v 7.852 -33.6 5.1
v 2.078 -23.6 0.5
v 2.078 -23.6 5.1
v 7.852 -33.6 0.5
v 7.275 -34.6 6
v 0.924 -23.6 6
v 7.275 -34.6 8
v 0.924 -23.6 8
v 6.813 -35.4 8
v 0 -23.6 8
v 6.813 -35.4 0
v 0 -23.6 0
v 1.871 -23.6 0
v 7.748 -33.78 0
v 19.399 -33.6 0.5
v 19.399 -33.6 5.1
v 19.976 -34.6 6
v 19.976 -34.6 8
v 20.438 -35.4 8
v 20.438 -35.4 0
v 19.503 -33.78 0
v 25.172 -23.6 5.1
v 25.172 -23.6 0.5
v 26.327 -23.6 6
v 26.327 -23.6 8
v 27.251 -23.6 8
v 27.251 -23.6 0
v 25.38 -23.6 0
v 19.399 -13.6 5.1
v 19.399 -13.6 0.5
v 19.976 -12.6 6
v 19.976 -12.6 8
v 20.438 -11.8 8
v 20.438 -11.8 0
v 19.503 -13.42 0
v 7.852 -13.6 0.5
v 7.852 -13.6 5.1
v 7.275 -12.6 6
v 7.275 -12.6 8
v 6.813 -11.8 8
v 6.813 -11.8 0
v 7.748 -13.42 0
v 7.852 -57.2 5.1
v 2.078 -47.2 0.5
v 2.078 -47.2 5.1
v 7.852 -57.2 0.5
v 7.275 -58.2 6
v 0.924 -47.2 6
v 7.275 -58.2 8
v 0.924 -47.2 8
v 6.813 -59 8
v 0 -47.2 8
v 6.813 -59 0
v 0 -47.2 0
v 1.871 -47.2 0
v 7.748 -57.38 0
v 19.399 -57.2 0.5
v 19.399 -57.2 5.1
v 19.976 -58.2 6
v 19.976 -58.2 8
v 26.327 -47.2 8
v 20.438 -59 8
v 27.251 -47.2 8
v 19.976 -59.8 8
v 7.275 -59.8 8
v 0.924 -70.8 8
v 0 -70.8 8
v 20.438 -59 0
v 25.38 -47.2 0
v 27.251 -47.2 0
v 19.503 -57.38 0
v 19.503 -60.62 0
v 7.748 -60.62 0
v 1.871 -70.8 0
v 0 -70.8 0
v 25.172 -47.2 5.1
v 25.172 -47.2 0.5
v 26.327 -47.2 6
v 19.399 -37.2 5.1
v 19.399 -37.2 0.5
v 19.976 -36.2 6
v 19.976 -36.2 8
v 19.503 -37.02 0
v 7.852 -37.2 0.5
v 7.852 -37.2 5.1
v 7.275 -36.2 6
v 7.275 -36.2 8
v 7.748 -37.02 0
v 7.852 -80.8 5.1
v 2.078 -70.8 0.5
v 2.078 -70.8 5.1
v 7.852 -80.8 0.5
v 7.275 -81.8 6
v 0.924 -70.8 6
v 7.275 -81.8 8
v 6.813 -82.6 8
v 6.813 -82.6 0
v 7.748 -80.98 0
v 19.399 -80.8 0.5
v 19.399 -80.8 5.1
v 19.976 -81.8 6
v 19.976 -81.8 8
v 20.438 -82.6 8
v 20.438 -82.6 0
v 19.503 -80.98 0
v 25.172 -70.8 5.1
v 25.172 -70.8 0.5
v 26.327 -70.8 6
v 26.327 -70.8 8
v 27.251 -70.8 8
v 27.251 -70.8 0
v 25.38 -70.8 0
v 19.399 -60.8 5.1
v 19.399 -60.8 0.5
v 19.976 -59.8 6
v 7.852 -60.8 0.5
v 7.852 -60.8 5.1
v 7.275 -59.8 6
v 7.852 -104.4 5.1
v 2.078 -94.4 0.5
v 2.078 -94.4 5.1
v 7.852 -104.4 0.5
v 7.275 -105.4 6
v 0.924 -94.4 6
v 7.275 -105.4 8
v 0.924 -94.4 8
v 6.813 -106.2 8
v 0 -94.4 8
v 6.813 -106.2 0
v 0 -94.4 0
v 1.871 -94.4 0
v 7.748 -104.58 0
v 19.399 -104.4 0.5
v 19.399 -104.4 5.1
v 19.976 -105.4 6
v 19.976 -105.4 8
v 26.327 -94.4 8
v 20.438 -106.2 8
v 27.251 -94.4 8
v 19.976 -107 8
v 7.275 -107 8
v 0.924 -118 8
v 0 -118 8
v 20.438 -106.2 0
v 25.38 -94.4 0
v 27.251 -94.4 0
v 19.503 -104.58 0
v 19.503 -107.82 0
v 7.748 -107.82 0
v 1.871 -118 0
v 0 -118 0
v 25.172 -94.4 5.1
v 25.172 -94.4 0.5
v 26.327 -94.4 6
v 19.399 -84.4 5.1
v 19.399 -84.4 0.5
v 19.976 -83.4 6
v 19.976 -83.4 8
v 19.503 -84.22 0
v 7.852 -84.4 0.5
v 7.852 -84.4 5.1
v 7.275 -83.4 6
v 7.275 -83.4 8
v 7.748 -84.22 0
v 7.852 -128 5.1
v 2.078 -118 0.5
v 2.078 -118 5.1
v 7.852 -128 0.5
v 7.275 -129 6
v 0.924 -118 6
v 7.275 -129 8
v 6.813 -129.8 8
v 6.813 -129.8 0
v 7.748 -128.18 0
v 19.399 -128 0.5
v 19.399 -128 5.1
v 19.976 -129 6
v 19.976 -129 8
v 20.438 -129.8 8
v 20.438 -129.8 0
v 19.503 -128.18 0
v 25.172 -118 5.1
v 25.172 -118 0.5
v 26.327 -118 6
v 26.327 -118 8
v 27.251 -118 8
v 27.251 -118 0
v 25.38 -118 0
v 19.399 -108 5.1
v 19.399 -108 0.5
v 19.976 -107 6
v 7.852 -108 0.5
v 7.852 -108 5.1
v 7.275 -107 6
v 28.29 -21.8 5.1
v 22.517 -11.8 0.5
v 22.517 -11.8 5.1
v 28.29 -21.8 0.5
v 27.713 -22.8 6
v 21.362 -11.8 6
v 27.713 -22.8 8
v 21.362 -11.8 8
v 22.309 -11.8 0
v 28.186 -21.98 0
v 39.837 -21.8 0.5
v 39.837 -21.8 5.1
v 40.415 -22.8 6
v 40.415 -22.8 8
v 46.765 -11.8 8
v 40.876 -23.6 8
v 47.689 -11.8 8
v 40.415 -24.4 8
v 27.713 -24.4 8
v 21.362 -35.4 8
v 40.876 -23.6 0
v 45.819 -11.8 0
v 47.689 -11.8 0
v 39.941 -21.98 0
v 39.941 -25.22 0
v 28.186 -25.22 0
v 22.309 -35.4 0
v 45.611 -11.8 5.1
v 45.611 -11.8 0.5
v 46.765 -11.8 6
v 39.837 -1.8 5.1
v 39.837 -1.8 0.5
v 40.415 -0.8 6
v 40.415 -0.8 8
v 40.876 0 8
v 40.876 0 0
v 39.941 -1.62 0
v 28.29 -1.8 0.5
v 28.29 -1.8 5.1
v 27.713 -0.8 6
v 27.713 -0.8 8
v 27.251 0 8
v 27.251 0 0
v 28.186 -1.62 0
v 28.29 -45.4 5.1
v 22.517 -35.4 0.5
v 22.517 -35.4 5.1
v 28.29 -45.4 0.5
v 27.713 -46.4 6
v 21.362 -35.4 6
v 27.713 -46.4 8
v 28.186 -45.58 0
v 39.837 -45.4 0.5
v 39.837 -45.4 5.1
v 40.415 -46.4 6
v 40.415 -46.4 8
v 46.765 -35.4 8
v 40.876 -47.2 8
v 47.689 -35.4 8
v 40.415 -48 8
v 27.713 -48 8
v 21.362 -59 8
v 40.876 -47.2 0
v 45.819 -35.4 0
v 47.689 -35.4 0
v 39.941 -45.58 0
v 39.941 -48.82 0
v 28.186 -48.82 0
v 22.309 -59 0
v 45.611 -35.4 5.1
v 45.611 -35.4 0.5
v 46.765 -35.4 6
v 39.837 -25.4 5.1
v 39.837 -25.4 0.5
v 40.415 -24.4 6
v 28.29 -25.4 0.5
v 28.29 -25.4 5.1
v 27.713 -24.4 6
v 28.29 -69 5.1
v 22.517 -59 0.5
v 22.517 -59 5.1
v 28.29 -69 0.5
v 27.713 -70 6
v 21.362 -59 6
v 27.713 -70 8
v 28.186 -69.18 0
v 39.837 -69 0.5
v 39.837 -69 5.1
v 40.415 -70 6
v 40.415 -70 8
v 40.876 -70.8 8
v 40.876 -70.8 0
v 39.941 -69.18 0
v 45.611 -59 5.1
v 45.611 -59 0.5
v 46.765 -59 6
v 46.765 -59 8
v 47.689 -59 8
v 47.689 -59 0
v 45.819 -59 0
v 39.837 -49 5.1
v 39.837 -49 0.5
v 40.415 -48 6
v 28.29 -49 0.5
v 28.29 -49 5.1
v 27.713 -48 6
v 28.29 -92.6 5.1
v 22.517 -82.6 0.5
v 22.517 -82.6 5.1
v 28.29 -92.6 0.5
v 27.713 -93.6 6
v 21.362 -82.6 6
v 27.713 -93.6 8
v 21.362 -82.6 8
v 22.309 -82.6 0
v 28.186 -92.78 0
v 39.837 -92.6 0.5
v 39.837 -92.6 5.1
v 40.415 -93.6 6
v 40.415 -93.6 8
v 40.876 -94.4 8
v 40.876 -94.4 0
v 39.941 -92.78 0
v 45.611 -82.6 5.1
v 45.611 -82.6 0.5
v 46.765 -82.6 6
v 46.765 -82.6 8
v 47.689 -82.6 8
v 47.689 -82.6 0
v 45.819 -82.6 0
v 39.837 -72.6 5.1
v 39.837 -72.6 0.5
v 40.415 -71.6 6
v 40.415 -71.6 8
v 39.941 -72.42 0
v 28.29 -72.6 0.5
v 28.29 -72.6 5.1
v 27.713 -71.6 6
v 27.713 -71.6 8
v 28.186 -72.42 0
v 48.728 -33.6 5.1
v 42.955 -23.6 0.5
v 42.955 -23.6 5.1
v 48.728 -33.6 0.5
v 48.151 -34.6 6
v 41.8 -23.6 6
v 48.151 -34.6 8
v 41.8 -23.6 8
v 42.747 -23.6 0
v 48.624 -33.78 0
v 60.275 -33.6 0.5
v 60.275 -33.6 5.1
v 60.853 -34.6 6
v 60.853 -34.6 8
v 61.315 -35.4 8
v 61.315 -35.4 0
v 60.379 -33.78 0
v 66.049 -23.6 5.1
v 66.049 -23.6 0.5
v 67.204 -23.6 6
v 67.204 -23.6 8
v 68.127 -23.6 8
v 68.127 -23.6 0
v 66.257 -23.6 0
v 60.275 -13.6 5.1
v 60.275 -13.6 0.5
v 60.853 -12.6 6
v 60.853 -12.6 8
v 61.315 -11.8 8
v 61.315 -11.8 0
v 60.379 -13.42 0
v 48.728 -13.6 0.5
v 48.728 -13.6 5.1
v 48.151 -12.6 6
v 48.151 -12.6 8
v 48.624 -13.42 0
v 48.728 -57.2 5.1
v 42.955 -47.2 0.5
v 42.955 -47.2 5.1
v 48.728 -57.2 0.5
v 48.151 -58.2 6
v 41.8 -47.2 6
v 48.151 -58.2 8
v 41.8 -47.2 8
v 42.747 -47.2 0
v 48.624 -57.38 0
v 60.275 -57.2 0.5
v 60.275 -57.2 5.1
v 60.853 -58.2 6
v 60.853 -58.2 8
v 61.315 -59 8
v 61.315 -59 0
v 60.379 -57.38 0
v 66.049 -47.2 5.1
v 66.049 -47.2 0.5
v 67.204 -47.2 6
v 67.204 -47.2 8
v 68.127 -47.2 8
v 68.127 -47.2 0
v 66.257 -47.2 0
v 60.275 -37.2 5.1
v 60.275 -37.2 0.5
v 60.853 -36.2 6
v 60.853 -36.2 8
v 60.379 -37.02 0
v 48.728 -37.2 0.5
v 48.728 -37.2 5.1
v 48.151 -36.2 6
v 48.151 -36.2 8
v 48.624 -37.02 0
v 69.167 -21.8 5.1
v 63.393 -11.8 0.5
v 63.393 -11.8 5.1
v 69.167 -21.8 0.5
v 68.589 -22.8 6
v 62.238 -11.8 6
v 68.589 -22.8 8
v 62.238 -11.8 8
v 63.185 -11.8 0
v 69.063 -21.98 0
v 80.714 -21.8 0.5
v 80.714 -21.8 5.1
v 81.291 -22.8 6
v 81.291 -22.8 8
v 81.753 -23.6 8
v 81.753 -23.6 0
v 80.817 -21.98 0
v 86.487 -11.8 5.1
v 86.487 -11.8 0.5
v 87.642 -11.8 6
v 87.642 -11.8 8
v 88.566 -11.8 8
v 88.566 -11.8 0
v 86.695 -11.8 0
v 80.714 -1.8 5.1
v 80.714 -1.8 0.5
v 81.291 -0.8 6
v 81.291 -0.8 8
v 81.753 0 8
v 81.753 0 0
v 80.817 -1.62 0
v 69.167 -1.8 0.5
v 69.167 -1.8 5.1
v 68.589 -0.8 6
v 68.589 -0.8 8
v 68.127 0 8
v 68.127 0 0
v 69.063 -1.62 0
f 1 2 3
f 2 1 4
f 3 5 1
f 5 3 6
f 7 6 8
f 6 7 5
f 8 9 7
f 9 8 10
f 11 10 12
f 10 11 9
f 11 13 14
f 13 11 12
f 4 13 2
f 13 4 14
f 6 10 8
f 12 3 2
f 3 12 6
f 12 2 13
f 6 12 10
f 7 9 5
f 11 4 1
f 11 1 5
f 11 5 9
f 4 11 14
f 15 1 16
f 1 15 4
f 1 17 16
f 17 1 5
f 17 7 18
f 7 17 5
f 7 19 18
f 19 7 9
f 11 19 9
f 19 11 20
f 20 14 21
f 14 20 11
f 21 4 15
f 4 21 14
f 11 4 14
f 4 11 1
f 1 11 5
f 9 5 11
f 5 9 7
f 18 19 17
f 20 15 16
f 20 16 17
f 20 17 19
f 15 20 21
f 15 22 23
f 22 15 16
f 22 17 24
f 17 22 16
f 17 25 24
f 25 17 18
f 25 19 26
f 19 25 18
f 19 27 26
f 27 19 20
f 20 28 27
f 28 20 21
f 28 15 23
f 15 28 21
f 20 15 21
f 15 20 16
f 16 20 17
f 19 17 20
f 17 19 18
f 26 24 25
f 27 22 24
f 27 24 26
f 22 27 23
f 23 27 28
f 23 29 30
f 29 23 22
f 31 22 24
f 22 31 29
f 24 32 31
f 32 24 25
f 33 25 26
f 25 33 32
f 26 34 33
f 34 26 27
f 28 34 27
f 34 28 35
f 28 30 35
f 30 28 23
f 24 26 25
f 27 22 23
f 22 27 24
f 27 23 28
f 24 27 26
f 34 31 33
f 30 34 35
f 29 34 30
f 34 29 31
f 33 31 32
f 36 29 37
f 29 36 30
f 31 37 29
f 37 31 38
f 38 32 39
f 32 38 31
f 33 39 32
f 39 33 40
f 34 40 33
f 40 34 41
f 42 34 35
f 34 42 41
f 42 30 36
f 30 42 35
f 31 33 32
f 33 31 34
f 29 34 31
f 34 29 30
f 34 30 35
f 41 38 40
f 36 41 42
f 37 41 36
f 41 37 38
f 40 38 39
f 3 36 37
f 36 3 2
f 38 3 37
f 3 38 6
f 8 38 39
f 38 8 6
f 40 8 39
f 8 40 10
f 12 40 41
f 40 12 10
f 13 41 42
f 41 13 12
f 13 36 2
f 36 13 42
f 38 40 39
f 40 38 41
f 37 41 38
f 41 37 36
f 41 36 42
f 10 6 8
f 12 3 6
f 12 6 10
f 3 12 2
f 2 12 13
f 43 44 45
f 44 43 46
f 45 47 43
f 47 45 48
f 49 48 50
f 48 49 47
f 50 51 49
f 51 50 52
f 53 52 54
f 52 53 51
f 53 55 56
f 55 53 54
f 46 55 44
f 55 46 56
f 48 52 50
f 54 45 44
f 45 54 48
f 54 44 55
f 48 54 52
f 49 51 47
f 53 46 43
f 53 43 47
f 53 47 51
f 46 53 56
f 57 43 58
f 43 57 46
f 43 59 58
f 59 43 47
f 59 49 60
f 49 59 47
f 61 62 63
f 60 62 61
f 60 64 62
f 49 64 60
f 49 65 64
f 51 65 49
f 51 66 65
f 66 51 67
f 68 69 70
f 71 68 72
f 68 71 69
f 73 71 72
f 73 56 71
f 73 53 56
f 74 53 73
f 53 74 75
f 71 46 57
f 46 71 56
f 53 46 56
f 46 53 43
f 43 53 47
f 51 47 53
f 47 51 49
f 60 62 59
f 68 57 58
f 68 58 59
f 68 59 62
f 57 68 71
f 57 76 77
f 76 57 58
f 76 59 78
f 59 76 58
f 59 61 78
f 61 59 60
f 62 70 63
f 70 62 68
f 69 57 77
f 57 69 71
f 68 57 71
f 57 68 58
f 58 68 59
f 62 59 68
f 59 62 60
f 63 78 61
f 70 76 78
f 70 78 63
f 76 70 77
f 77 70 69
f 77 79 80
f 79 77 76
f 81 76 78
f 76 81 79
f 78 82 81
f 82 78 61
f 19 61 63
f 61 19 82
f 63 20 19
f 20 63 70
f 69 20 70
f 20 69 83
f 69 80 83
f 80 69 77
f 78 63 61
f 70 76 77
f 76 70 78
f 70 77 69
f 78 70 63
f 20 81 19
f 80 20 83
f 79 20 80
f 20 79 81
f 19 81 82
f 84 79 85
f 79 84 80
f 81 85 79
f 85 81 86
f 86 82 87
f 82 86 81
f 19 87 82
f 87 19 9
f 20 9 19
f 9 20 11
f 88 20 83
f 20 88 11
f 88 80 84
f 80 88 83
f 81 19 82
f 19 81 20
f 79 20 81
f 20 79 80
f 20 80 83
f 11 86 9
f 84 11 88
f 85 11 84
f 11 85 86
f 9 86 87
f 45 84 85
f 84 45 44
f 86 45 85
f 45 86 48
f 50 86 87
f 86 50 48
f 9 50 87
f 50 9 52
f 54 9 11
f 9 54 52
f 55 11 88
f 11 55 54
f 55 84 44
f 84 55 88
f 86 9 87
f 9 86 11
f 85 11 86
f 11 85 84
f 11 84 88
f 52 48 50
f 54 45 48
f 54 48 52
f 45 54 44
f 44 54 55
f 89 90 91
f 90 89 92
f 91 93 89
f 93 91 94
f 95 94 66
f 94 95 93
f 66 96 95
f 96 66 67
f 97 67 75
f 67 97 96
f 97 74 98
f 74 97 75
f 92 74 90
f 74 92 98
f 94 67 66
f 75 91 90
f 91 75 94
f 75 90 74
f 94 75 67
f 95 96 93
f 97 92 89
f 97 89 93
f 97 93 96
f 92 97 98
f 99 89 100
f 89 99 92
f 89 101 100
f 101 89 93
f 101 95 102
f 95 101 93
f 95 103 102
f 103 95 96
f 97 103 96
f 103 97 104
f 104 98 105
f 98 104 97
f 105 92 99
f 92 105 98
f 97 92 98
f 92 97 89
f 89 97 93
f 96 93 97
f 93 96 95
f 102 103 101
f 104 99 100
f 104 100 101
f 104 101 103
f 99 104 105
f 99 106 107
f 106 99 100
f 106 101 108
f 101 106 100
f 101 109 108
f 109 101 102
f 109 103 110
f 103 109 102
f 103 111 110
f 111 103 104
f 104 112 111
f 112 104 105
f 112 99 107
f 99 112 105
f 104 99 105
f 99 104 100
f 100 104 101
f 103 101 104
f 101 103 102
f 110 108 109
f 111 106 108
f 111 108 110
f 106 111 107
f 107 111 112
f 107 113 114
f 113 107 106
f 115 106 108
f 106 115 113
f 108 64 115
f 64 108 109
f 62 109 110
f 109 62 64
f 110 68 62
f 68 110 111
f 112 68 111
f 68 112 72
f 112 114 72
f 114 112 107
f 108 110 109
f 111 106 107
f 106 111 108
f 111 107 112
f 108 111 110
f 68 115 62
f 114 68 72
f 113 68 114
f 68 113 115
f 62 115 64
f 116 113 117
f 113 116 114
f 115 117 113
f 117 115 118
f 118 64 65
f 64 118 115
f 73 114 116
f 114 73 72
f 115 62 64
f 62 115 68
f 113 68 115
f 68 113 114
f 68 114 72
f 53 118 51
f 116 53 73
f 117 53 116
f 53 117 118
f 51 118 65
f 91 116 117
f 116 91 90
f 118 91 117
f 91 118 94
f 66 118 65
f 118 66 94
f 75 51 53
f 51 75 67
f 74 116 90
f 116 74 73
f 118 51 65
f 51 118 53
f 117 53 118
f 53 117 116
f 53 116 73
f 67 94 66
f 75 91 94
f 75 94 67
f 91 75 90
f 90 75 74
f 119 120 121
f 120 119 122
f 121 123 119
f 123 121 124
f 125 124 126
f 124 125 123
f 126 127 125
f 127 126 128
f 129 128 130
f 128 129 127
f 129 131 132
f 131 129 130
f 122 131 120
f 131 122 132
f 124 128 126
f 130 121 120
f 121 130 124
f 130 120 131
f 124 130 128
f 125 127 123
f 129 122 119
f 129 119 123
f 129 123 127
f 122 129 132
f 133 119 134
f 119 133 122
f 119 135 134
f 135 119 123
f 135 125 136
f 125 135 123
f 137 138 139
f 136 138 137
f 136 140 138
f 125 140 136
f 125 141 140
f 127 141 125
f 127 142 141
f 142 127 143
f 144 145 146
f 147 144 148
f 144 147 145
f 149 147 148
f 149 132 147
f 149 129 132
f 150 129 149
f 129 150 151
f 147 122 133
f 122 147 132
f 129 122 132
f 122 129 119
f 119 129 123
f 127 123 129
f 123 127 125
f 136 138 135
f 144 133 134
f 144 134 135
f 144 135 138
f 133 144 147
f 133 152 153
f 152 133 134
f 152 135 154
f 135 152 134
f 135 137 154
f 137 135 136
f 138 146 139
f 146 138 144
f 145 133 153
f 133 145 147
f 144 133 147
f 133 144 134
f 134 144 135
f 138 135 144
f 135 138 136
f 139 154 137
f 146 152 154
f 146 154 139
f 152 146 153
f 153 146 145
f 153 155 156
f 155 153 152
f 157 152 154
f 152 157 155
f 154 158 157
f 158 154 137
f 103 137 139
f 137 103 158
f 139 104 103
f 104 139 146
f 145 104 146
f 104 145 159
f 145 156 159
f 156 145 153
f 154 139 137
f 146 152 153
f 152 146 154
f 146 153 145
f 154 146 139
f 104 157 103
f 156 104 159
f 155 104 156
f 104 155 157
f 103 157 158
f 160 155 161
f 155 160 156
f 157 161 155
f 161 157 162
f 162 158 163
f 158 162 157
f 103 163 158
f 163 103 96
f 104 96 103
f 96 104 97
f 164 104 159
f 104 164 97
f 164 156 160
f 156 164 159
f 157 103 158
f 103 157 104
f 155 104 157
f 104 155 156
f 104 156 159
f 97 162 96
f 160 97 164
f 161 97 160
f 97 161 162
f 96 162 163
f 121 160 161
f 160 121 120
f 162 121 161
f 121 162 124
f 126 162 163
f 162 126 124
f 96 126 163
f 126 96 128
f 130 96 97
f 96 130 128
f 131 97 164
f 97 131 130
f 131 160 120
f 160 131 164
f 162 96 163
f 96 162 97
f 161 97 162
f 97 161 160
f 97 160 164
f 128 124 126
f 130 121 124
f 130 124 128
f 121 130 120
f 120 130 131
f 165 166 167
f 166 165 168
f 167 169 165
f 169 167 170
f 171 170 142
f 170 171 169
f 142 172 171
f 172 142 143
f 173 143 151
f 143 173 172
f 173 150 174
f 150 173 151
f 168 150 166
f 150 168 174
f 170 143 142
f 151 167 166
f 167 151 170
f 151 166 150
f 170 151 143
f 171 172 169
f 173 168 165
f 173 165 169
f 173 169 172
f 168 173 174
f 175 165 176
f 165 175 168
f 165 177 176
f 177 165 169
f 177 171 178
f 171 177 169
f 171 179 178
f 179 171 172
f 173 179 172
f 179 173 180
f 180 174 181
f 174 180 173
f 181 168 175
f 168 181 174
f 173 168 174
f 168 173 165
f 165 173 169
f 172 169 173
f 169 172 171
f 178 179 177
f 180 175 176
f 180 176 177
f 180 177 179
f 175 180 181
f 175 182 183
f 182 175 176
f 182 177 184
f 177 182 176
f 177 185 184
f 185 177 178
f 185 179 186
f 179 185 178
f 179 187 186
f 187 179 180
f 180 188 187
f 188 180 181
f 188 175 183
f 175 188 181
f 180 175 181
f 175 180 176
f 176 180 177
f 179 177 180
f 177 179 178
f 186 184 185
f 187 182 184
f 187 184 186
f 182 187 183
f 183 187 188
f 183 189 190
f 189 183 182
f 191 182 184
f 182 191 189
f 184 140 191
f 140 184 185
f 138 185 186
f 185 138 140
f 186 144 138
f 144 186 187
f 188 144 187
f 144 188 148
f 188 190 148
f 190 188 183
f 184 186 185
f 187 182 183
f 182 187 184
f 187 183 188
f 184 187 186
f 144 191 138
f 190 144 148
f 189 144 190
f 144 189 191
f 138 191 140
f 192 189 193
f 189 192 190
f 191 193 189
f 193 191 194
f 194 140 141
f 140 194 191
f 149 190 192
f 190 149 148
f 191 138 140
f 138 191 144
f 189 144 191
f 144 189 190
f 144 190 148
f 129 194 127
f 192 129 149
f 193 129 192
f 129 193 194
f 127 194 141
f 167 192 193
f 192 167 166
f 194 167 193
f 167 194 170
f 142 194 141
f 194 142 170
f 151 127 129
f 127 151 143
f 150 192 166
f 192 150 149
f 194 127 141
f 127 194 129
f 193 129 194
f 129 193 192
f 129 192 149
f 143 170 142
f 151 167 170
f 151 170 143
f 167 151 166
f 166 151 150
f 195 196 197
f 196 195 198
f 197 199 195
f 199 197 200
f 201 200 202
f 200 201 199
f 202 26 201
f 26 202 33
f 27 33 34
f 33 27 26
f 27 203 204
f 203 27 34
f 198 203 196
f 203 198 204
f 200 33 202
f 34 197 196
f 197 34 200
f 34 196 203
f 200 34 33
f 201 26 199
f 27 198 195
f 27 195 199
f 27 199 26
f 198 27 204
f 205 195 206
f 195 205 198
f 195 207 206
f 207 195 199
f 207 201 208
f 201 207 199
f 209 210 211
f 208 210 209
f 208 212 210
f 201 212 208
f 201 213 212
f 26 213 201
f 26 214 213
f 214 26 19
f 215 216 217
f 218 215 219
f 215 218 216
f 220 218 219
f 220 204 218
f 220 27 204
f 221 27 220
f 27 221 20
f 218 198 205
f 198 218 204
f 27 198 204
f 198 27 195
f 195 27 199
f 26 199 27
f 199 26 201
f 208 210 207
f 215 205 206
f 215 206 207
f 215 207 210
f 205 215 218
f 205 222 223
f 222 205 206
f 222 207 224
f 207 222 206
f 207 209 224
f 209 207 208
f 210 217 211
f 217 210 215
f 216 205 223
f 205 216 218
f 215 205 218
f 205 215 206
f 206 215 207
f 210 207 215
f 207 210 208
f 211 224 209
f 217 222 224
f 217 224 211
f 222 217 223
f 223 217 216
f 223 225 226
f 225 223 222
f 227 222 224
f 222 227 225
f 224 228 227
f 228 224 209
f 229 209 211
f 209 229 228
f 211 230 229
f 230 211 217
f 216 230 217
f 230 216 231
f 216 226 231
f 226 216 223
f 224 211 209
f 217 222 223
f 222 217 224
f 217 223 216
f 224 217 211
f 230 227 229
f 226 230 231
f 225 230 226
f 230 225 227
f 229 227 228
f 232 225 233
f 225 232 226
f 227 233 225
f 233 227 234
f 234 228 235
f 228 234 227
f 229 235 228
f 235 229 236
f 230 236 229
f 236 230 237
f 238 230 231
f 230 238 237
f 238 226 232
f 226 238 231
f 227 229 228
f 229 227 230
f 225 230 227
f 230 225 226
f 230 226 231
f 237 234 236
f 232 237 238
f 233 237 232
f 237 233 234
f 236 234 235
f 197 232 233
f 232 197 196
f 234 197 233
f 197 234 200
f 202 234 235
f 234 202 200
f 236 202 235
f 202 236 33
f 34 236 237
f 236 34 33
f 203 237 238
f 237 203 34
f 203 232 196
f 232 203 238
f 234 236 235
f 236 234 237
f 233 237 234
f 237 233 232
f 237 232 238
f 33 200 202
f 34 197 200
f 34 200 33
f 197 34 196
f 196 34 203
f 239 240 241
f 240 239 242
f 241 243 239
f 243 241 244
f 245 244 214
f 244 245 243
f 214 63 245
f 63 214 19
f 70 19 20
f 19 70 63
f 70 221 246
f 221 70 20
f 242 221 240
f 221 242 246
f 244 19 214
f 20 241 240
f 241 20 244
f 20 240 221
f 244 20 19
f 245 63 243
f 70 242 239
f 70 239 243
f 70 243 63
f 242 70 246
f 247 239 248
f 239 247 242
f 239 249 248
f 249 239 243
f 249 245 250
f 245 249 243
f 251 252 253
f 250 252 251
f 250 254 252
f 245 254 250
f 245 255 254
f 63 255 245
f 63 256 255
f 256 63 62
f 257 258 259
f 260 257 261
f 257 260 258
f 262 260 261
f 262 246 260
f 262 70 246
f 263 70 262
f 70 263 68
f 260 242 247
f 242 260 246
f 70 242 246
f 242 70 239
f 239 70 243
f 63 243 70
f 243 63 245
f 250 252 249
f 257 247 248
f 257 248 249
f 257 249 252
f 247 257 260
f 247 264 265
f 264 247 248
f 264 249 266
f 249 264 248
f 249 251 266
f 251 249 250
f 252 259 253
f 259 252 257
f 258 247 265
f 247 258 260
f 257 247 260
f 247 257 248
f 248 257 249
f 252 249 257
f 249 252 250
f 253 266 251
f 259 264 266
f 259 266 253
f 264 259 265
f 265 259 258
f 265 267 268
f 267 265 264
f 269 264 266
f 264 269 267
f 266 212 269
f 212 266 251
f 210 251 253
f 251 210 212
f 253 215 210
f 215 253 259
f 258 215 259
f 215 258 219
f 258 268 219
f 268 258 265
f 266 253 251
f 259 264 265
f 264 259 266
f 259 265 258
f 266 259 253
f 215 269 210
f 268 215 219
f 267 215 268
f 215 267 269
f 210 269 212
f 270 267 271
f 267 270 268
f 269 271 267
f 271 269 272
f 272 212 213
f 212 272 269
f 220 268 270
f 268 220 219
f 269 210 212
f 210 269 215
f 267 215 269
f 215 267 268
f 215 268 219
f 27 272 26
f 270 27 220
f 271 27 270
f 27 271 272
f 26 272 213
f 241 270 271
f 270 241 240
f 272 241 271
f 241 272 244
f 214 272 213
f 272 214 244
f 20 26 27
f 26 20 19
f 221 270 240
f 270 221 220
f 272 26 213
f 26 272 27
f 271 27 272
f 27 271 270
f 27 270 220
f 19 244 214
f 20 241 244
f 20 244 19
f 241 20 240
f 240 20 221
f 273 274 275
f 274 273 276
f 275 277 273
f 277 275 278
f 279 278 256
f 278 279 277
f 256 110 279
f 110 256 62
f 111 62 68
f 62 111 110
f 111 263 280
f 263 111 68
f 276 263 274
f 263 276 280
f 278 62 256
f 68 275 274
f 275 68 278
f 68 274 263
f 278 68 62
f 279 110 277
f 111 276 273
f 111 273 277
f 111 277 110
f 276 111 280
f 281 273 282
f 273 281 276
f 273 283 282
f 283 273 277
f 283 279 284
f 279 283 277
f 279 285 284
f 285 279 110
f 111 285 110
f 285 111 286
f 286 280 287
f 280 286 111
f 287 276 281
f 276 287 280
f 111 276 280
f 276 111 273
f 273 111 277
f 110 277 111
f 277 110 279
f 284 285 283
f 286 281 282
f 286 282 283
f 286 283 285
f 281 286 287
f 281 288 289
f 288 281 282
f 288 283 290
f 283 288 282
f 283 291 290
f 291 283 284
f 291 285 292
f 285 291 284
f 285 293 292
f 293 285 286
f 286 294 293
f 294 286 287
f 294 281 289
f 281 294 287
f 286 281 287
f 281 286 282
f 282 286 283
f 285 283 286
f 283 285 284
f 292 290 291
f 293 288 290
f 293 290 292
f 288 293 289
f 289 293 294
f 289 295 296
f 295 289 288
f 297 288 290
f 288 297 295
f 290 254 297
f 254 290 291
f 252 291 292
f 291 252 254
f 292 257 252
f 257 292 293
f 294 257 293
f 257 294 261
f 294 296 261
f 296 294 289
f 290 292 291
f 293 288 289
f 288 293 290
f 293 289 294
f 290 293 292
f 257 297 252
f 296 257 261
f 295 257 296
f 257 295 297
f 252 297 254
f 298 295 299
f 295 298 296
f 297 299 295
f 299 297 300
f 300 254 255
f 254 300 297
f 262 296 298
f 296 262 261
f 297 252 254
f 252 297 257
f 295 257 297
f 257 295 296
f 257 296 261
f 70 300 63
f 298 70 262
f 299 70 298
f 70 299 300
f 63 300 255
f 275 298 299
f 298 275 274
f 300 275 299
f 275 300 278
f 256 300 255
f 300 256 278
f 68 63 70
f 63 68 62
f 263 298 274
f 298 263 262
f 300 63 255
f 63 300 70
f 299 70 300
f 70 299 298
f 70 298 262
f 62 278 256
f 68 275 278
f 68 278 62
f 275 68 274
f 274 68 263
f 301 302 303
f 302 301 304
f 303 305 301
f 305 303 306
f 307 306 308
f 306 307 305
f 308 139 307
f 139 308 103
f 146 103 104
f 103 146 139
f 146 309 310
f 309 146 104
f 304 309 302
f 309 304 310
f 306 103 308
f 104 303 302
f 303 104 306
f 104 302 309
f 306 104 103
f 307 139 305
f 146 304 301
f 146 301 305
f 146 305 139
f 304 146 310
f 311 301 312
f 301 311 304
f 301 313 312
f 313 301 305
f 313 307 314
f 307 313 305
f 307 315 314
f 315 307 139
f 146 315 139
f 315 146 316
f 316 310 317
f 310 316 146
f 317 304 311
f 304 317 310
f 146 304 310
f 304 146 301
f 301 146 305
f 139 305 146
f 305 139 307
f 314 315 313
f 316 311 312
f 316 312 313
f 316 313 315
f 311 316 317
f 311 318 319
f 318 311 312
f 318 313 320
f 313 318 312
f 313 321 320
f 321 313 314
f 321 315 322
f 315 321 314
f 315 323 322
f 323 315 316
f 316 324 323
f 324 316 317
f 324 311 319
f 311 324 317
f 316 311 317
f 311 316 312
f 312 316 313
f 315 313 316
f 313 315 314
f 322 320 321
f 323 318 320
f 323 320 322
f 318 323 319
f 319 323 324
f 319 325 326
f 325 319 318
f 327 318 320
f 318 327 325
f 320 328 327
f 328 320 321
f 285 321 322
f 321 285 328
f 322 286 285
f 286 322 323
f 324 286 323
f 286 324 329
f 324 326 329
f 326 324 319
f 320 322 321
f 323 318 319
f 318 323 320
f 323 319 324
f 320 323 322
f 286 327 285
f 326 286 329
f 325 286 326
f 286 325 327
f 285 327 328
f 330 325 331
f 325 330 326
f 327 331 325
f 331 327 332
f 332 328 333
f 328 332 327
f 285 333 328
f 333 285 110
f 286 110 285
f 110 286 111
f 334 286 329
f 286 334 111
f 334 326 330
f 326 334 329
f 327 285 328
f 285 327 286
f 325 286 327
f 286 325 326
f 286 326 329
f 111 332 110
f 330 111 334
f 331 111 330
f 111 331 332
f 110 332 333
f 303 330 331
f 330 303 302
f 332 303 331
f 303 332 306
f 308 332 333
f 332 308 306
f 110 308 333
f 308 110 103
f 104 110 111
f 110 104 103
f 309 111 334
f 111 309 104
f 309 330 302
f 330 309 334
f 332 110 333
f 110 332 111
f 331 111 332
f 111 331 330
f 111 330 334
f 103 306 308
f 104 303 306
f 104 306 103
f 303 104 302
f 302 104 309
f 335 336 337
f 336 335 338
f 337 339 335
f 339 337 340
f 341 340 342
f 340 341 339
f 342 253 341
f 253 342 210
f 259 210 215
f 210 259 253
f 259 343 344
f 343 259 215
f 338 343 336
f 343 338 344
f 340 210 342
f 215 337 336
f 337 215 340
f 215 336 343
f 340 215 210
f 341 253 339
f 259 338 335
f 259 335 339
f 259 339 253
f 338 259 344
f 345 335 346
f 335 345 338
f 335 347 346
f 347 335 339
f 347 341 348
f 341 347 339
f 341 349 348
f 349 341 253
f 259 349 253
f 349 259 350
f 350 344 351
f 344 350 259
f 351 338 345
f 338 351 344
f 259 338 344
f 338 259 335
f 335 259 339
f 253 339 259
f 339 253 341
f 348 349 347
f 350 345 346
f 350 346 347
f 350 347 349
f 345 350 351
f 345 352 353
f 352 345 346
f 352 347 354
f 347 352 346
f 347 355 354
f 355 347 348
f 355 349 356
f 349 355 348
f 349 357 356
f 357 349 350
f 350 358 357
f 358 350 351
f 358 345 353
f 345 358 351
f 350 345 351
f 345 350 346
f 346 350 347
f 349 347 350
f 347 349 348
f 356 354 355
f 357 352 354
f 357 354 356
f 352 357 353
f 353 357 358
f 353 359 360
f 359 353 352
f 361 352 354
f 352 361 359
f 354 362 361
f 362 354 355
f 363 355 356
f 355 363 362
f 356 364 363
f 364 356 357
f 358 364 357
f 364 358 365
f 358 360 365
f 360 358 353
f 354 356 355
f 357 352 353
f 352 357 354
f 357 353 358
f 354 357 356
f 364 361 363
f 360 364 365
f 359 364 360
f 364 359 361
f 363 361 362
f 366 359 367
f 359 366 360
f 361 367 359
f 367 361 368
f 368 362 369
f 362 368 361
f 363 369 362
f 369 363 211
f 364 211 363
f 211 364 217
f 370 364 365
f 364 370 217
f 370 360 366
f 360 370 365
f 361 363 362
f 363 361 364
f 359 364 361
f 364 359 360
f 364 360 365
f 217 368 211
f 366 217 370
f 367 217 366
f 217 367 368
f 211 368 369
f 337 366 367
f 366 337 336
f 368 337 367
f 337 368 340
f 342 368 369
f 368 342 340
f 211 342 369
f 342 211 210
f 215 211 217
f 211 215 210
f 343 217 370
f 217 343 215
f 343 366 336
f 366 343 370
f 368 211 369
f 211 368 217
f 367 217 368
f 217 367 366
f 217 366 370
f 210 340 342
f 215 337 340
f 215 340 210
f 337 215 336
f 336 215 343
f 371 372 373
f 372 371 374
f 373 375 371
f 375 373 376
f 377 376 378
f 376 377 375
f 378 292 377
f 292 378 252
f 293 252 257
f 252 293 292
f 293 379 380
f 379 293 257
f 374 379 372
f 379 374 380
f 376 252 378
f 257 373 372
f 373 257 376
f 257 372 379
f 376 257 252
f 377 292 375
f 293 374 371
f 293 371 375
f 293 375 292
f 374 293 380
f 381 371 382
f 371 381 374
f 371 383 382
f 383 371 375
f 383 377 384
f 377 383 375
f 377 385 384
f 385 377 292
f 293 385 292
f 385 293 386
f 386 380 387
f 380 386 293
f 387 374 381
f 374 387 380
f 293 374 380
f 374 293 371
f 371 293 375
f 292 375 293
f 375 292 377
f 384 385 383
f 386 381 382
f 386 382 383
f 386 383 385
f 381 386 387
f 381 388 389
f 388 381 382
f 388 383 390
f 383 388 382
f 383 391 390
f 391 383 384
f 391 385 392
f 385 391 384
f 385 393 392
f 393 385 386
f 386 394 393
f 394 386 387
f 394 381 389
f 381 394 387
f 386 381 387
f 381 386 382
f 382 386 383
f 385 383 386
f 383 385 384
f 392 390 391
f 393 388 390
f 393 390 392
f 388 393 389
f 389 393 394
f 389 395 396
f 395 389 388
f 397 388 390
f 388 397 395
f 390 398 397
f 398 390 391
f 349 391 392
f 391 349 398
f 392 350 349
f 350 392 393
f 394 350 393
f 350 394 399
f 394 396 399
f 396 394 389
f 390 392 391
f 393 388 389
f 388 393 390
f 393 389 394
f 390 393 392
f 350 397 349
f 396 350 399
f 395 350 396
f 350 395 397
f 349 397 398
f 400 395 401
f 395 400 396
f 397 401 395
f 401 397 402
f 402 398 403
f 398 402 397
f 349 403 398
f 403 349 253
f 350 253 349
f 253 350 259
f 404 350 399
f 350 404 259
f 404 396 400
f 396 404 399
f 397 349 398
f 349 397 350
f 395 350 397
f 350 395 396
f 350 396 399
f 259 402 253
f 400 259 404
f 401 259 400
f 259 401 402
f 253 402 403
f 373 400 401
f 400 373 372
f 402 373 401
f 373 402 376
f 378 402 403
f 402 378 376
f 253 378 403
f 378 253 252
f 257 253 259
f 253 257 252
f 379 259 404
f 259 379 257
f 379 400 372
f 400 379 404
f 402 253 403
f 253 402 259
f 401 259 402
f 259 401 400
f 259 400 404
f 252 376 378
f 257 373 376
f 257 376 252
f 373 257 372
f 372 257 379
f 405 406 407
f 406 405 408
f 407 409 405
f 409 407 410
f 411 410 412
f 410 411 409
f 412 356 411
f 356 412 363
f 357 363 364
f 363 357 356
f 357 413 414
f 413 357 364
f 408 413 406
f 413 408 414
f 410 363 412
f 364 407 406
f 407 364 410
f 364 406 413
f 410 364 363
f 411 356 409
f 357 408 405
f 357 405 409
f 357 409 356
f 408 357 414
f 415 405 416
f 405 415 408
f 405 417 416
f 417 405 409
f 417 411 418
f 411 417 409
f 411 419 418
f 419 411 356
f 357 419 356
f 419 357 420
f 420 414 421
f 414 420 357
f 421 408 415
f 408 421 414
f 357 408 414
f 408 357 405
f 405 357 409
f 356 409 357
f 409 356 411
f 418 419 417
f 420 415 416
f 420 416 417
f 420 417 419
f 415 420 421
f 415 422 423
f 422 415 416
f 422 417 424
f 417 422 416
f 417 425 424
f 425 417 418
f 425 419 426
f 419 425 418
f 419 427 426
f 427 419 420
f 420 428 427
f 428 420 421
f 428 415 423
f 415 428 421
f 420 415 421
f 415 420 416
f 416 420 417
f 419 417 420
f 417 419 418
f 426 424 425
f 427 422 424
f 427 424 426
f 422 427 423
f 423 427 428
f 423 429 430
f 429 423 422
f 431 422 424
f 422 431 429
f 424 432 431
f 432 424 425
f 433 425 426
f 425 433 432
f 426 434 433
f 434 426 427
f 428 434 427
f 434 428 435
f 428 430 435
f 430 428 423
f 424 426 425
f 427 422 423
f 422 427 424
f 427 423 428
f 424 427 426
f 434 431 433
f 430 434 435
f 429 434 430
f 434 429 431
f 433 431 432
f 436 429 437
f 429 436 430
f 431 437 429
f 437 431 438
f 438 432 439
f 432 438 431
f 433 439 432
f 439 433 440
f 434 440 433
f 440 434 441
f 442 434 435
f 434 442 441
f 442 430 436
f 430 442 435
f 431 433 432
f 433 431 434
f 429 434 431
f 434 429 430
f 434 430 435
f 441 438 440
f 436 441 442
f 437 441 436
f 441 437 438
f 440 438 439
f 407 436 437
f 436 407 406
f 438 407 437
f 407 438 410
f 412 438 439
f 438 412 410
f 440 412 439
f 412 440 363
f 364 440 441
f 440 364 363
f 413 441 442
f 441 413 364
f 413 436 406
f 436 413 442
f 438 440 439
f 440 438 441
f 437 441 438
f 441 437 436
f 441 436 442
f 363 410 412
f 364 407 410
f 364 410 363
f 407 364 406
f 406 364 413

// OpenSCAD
/*[ Hex unit size ]*/

//Depth of the grid
depth = 8;
//Width of the hexagon's hole (flat side to flat side)
hole_width = 20;
//Thickness of the wall forming each hexagon
wall_thickness = 1.8;

/*[ Grid size settings ]*/
max_grid_width=100;
max_grid_height=100;

/*[ Grid shape ]*/
//If checked, ignores custom column sizes and fills grid to maximum size.
fill=false;
flip_staggering=true;
//Amount of hexagons per column. Each entry defines a one column, where the number specifies the amount of hex units that will be generated for the respective column. (Ignored if "fill" is checked)
columns=[5,4,2,1];
include_offsets=false;
//Optional: Offset for each column. This will ignore grid size limits.
column_offsets=[0,-2,-3,-1,0,2,4];
include_gaps=true;
//Optional: Gaps for each column. *NOTE: Change these values in the code. Seems like 2D vector parameters aren't supported by the parameter editor and are always overwritten by the defaults.
column_gaps=[
//             [1,2,3,4,5,],
//             [1,2,3,4,], 
//             [1,], 
//             [1,2],
//             [1],
            ];

/*[ Flat edges ]*/
edge_left = false;
edge_top = false;
edge_right = false;
edge_bottom = false;


//Calculated global variables
//Hexagon dimensions
hex_inner_r = hole_width/sqrt(3); //Inner radius/side length (center to point)
hex_h=hole_width+wall_thickness*2; //Outer side to side distance
hex_s=hex_h/sqrt(3); //Outer radius/side length 
hex_d=2*hex_s; //Outer diameter (point to point)
hex_t=hex_s/2;
//Grid dimensions
max_grid_hexagons_x = fill? floor(max_grid_width/(hex_d-hex_t) +(edge_left?0.5:0) +(edge_right?0.5:0)): len(columns);
max_grid_hexagons_y = fill? floor(max_grid_height/hex_h +(edge_top?0.5:0) +(edge_bottom?0.5:0)): max(columns);
max_grid_hexagons_y_lo = fill? floor(max_grid_height/hex_h - 0.5 +(edge_top?0.5:0) +(edge_bottom?0.5:0)): (max(columns) - 0.5);
total_width = max_grid_hexagons_x * (hex_d-hex_t) + hex_t;
total_height = hex_h*max(max_grid_hexagons_y - 0.5, max_grid_hexagons_y_lo);


translate([edge_left?0:hex_s, edge_top?0:-hex_h/2, 0])
grid(columns, include_offsets?column_offsets:[], include_gaps?column_gaps:[], depth, hole_width, wall_thickness, fill);


module grid(cols, offsets, gaps, height, hole_width, wall_width, fill){    
    for(hcol = [0:fill?max_grid_hexagons_x-1:(len(cols)-1)]){
        for(hrow = [0:(fill?(max_grid_hexagons_y-1):(cols[hcol]-1))]) {
            skip = hcol<len(gaps) && len(search(hrow+1, gaps[hcol])) > 0;          
            if(!skip){
                offset_value=hcol>len(offsets)-1?0:offsets[hcol];
                
                lo = (hcol+(flip_staggering?1:0))%2;
                x = (hex_d-hex_t)*hcol;
                y = -(hex_h)*(hrow + offset_value + lo/2);                
                
                if(hcol<max_grid_hexagons_x && hrow<(lo==0?max_grid_hexagons_y:max_grid_hexagons_y_lo)){
                    left = edge_left && hcol==0;
                    top = edge_top && hrow==0 && hcol%2==(flip_staggering?1:0);
                    right = edge_right && hcol==max_grid_hexagons_x-1;
                    bottom = edge_bottom && hrow+1==(lo==0?max_grid_hexagons_y:max_grid_hexagons_y_lo) && -y+hex_h>total_height+0.001 && -y+hex_h/2<=total_height;
                    translate([x, y, 0]) halfhex(height, hex_s, wall_width, hole_width, left, top, right, bottom);
                }
            }        
        }
    }
}

module halfhex(height, radius, wall_thickness, hole_width, left, top, right, bottom){
    difference(){
        union(){
            hex(height, radius, wall_thickness, hole_width);
            if(left) translate([0, hex_h/2, 0]) wall(depth, wall_thickness, hex_h);
            if(top) translate([hex_d/2, 0, 0]) rotate([0,0,-90]) wall(depth, wall_thickness, hex_d);
            if(right) translate([0, -hex_h/2, 0]) rotate([0,0,180]) wall(depth, wall_thickness, hex_h);
            if(bottom) translate([-hex_d/2, 0, 0]) rotate([0,0,90]) wall(depth, wall_thickness, hex_d);
        }
        if(left) translate([-hex_d/2, -hex_h, 0]) cube([hex_d/2, 2*hex_h, depth]);
        if(top) translate([-hex_d/2, 0, 0]) cube([hex_d, hex_h, depth]);
        if(right) translate([0, -hex_h, 0]) cube([hex_d/2, 2*hex_h, depth]);
        if(bottom) translate([-hex_d/2, -hex_h, 0]) cube([hex_d, hex_h, depth]);
    }
}

module hex(height, radius, wall_thickness, hole_width){
    for(i=[0:5]){
        rotate([0,0,i*60+30])
        translate([-hole_width/2-wall_thickness, radius/2, 0])
        wall(height, wall_thickness, radius);
    }
}

module wall(height, wall_thickness, length){
    hmax=height;
    hmin=5.1;
    hd=2;
    tmax=wall_thickness;
    tmin=wall_thickness-1;   
    ft = 0.18;//fillet thickness
    fh = 0.5;//fillet height
    color("cyan")
    difference(){
        color([0,0,1])
        rotate([90,0,0])
            linear_extrude(length)   
            polygon([[0,0], [0,hmax], [tmin,hmax], [tmin,hmax-hd], [tmax,hmin], [tmax,fh], [tmax-ft,0]]);
        //Fillet
        rotate([0,0,-30])
            cube([4*tmax, 2*tmax, hmax]);
        mirror([0,1,0])
            translate([0,length,0])
            rotate([0,0,-30])
            cube([4*tmax, 2*tmax, hmax]);
    }
}
